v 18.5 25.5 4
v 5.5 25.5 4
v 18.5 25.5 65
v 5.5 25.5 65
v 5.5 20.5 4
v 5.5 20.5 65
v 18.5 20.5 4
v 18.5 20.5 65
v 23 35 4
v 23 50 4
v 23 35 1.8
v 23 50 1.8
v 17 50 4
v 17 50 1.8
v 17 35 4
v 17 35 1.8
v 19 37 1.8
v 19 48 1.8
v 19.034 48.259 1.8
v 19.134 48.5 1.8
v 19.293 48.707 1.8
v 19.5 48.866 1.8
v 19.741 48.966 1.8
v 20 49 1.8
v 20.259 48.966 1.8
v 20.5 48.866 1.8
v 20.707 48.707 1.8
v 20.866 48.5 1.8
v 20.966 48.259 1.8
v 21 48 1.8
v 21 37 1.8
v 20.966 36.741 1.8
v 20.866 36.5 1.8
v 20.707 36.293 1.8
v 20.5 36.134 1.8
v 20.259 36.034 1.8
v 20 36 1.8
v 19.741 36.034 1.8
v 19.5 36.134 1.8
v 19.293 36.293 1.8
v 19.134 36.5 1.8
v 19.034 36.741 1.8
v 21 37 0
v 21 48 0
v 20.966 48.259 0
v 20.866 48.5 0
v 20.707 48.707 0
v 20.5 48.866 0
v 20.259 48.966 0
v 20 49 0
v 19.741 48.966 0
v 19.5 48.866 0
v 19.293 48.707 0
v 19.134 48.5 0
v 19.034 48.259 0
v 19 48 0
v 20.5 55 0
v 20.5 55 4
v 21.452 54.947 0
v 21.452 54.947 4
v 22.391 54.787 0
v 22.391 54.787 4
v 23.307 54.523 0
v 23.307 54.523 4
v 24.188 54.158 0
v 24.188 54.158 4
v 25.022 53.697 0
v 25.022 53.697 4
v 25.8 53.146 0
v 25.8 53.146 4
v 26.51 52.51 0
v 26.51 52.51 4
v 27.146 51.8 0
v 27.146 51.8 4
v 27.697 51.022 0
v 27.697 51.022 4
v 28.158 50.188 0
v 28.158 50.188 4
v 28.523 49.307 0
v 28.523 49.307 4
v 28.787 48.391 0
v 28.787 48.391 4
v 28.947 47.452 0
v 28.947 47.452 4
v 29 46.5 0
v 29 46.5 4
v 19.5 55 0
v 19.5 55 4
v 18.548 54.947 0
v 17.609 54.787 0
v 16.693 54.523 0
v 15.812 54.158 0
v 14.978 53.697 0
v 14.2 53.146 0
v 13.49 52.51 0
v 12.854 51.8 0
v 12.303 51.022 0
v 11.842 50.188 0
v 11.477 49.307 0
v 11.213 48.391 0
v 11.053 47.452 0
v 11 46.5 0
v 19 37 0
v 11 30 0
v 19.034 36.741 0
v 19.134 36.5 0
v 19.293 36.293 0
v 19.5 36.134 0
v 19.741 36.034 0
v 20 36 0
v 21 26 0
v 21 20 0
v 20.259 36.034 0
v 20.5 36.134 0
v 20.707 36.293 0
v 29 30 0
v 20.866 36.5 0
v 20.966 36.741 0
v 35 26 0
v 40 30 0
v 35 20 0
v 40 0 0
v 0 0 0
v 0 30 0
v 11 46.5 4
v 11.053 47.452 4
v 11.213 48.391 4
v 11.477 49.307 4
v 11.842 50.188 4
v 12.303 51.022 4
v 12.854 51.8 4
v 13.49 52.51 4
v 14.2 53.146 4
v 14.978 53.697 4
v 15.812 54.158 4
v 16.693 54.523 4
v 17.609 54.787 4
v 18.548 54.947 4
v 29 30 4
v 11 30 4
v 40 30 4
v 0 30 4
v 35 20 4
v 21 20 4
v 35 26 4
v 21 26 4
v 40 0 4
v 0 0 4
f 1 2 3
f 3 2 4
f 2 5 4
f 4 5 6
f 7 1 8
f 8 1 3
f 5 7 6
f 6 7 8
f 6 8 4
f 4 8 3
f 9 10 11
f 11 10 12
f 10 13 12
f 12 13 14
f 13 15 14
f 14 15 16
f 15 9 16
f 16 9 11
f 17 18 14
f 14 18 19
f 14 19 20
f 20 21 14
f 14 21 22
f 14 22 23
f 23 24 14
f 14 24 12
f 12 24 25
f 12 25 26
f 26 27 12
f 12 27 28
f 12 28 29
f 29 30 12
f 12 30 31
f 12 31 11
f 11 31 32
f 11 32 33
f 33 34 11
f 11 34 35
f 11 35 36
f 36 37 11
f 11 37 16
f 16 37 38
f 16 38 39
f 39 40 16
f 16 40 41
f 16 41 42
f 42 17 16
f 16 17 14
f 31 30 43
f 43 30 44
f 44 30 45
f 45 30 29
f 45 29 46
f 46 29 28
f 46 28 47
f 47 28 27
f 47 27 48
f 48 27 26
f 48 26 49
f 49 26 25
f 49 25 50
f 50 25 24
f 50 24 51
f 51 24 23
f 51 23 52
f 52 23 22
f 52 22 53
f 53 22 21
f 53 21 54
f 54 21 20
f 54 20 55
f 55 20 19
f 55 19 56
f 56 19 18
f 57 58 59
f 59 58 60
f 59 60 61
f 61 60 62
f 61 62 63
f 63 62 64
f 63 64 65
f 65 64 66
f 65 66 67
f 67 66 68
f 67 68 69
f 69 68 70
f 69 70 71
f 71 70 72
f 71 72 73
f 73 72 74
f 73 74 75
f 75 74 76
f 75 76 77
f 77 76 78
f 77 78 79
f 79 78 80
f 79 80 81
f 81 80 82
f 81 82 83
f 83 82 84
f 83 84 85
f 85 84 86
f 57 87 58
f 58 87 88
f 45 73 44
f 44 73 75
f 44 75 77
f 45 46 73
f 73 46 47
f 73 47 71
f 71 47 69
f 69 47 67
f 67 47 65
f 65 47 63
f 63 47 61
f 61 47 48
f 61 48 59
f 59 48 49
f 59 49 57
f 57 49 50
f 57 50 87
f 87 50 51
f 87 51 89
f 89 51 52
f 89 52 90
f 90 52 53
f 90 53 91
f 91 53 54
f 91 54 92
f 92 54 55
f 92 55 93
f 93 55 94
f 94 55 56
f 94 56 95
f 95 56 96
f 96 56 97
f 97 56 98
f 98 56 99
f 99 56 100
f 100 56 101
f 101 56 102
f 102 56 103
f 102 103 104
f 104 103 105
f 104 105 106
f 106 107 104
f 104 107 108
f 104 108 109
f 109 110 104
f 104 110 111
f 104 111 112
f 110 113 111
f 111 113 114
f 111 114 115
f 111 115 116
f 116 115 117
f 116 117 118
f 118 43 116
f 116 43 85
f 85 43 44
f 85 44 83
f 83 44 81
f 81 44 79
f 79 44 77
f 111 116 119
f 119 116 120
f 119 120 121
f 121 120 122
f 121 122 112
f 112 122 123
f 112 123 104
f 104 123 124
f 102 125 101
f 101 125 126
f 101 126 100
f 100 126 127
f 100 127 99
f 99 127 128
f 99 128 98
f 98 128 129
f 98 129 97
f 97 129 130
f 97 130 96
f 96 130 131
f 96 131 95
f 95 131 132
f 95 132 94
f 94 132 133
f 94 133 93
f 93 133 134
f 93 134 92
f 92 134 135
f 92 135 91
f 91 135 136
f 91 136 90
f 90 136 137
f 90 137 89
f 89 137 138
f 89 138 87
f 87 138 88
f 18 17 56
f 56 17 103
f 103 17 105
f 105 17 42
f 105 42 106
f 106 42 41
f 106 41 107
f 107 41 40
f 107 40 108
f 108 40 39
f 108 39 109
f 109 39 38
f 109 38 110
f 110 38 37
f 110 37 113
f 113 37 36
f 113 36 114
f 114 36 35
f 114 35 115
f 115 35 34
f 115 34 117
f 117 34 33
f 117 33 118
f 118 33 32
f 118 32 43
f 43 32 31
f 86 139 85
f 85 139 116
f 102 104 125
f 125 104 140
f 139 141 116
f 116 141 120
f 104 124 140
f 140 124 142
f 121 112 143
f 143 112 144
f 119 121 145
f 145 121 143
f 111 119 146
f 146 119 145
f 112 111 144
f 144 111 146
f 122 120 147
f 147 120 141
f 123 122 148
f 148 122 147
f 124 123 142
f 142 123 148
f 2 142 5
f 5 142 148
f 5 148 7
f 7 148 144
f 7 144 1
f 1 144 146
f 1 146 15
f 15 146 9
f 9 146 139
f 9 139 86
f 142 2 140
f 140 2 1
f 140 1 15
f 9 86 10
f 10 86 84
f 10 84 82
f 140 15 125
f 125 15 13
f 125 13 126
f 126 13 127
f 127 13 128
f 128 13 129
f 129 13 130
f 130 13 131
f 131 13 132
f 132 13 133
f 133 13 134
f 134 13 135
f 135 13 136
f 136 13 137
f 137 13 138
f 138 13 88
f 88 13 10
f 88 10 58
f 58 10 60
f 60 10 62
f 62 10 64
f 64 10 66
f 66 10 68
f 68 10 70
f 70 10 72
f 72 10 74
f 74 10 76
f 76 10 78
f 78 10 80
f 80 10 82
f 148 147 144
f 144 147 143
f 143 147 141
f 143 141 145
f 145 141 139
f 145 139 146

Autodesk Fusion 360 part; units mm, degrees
sketch "スケッチ1" plane through (0, 0, 0) normal (0, 0, 1) x (1, 0, 0)
  line L0 (0, 0) -> (40, 0)
  line L1 (40, 0) -> (40, 30)
  line L2 (40, 30) -> (0, 30)
  line L3 (0, 30) -> (0, 0)
  line L4 (6, 21) -> (18, 21)
  line L5 (18, 21) -> (18, 25)
  line L6 (18, 25) -> (6, 25)
  line L7 (6, 25) -> (6, 21)
  line L8 (21, 20) -> (35, 20)
  line L9 (35, 20) -> (35, 26)
  line L10 (35, 26) -> (21, 26)
  line L11 (21, 26) -> (21, 20)
  dimension "d1" = 30
extrude "押し出し1" add sketch "スケッチ1" along normal blind 4
sketch "スケッチ2" plane through (0, 0, 4) normal (0, 0, 1) x (-1, 0, 0)
  line L0 (-6, -21) -> (-6, -25)
  line L1 (-6, -25) -> (-18, -25)
  line L2 (-18, -25) -> (-18, -21)
  line L3 (-18, -21) -> (-6, -21)
  line L4 (-21, -20) -> (-21, -26)
  line L5 (-21, -26) -> (-35, -26)
  line L6 (-35, -26) -> (-35, -20)
  line L7 (-35, -20) -> (-21, -20)
  line L8 (0, -30) -> (0, 0)
  line L9 (0, 0) -> (-40, 0)
  line L10 (-40, 0) -> (-40, -30)
  line L11 (-40, -30) -> (0, -30)
sketch "スケッチ3" plane through (0, 0, 0) normal (0, 0, -1) x (1, 0, 0)
  line L0 (6, -25) -> (6, -21)
  line L1 (6, -21) -> (18, -21)
  line L2 (18, -21) -> (18, -25)
  line L3 (18, -25) -> (6, -25)
  line L4 (21, -26) -> (21, -20)
  line L5 (21, -20) -> (35, -20)
  line L6 (35, -20) -> (35, -26)
  line L7 (35, -26) -> (21, -26)
  line L8 (0, 0) -> (0, -30)
  line L9 (0, -30) -> (40, -30)
  line L10 (40, -30) -> (40, 0)
  line L11 (40, 0) -> (0, 0)
  line L12 (19, -21) -> (5, -21)
  line L13 (5, -21) -> (5, -26)
  line L14 (5, -26) -> (19, -26)
  line L15 (19, -26) -> (19, -21)
extrude "押し出し2" cut sketch "スケッチ3" against normal blind 1 contours L0 L2 L3 L12 L13 L14 L15
sketch "スケッチ4" plane through (0, 0, 0) normal (0, 0, -1) x (1, 0, 0)
  line L0 (0, 0) -> (0, -30)
  line L1 (0, -30) -> (40, -30)
  line L2 (40, -30) -> (40, 0)
  line L3 (40, 0) -> (0, 0)
  line L4 (21, -26) -> (21, -20)
  line L5 (21, -20) -> (35, -20)
  line L6 (35, -20) -> (35, -26)
  line L7 (35, -26) -> (21, -26)
  line L8 (5, -21) -> (19, -21)
  line L9 (19, -21) -> (19, -26)
  line L10 (19, -26) -> (5, -26)
  line L11 (5, -26) -> (5, -21)
sketch "スケッチ5" plane through (0, 0, 0) normal (0, 0, -1) x (1, 0, 0)
  line L0 (11, -30) -> (29, -30)
  line L1 (29, -30) -> (29, -55)
  line L2 (29, -55) -> (11, -55)
  line L3 (11, -55) -> (11, -30)
  line L4 (19, -48) -> (19, -37)
  line L5 (21, -48) -> (21, -37)
  circle A0 centre (20, -48) radius 1
  circle A1 centre (20, -37) radius 1
extrude "押し出し3" add sketch "スケッチ5" against normal blind 4
fillet "フィレット1" radius 8.5 2 edges at (11, 55, 2) (29, 55, 2)
sketch "スケッチ6" plane through (0, 0, 4) normal (0, 0, 1) x (-1, 0, 0)
  line L0 (-19, -21) -> (-5, -21)
  line L1 (-5, -21) -> (-5, -26)
  line L2 (-5, -26) -> (-19, -26)
  line L3 (-19, -26) -> (-19, -21)
extrude "押し出し4" cut sketch "スケッチ6" against normal blind 2
extrude "押し出し5" add sketch "スケッチ4" against normal blind 1 contours L8 L9 L10 L11
extrude "押し出し6" cut sketch "スケッチ2" against normal blind 200 contours L0 L1 L2 L3
sketch "スケッチ7" plane through (0, 0, 4) normal (0, 0, 1) x (-1, 0, 0)
  line L0 (-19, -21) -> (-5, -21)
  line L1 (-5, -21) -> (-5, -26)
  line L2 (-5, -26) -> (-19, -26)
  line L3 (-19, -26) -> (-19, -21)
  arc A0 (-29, -46.5) -> (-20.5, -55) centre (-20.5, -46.5) ccw
  line L4 (-20.5, -55) -> (-19.5, -55)
  arc A1 (-19.5, -55) -> (-11, -46.5) centre (-19.5, -46.5) ccw
  line L5 (-11, -46.5) -> (-11, -30)
  line L6 (-11, -30) -> (0, -30)
  line L7 (0, -30) -> (0, 0)
  line L8 (0, 0) -> (-40, 0)
  line L9 (-40, 0) -> (-40, -30)
  line L10 (-40, -30) -> (-29, -30)
  line L11 (-29, -30) -> (-29, -46.5)
  arc A2 (-21, -48) -> (-19, -48) centre (-20, -48) ccw
  line L12 (-21, -48) -> (-21, -37)
  arc A3 (-19, -37) -> (-21, -37) centre (-20, -37) ccw
  line L13 (-19, -37) -> (-19, -48)
  line L14 (-21, -20) -> (-21, -26)
  line L15 (-21, -26) -> (-35, -26)
  line L16 (-35, -26) -> (-35, -20)
  line L17 (-35, -20) -> (-21, -20)
  line L18 (-17, -50) -> (-23, -50)
  line L19 (-23, -50) -> (-23, -35)
  line L20 (-23, -35) -> (-17, -35)
  line L21 (-17, -35) -> (-17, -50)
extrude "押し出し7" cut sketch "スケッチ7" against normal blind 2.2 contours L18 L19 L20 L21
sketch "スケッチ8" plane through (0, 0, 0) normal (0, 0, -1) x (1, 0, 0)
  line L0 (18, -25) -> (6, -25)
  line L1 (6, -25) -> (6, -21)
  line L2 (6, -21) -> (18, -21)
  line L3 (18, -21) -> (18, -25)
  arc A0 (19, -48) -> (21, -48) centre (20, -48) ccw
  line L4 (19, -48) -> (19, -37)
  arc A1 (21, -37) -> (19, -37) centre (20, -37) ccw
  line L5 (21, -37) -> (21, -48)
  arc A2 (20.5, -55) -> (29, -46.5) centre (20.5, -46.5) ccw
  line L6 (29, -46.5) -> (29, -30)
  line L7 (29, -30) -> (40, -30)
  line L8 (40, -30) -> (40, 0)
  line L9 (40, 0) -> (0, 0)
  line L10 (0, 0) -> (0, -30)
  line L11 (0, -30) -> (11, -30)
  line L12 (11, -30) -> (11, -46.5)
  arc A3 (11, -46.5) -> (19.5, -55) centre (19.5, -46.5) ccw
  line L13 (19.5, -55) -> (20.5, -55)
  line L14 (21, -26) -> (21, -20)
  line L15 (21, -20) -> (35, -20)
  line L16 (35, -20) -> (35, -26)
  line L17 (35, -26) -> (21, -26)
  line L18 (18.5, -25.5) -> (5.5, -25.5)
  line L19 (5.5, -25.5) -> (5.5, -20.5)
  line L20 (5.5, -20.5) -> (18.5, -20.5)
  line L21 (18.5, -20.5) -> (18.5, -25.5)
  line L22 (5, -26) -> (19, -26)
  line L23 (19, -26) -> (19, -21)
  line L24 (19, -21) -> (5, -21)
  line L25 (5, -21) -> (5, -26)
extrude "押し出し8" add 1 faces at (10, 25.6667, 2) along direction (0, 0, 1) blind 2
extrude "押し出し9" add sketch "スケッチ8" against normal blind 65 contours L0 L1 L3 L18 L19 L21 L24 | L0 L1 L2 L3 L24 | L2 L19 L20 L21 L24
